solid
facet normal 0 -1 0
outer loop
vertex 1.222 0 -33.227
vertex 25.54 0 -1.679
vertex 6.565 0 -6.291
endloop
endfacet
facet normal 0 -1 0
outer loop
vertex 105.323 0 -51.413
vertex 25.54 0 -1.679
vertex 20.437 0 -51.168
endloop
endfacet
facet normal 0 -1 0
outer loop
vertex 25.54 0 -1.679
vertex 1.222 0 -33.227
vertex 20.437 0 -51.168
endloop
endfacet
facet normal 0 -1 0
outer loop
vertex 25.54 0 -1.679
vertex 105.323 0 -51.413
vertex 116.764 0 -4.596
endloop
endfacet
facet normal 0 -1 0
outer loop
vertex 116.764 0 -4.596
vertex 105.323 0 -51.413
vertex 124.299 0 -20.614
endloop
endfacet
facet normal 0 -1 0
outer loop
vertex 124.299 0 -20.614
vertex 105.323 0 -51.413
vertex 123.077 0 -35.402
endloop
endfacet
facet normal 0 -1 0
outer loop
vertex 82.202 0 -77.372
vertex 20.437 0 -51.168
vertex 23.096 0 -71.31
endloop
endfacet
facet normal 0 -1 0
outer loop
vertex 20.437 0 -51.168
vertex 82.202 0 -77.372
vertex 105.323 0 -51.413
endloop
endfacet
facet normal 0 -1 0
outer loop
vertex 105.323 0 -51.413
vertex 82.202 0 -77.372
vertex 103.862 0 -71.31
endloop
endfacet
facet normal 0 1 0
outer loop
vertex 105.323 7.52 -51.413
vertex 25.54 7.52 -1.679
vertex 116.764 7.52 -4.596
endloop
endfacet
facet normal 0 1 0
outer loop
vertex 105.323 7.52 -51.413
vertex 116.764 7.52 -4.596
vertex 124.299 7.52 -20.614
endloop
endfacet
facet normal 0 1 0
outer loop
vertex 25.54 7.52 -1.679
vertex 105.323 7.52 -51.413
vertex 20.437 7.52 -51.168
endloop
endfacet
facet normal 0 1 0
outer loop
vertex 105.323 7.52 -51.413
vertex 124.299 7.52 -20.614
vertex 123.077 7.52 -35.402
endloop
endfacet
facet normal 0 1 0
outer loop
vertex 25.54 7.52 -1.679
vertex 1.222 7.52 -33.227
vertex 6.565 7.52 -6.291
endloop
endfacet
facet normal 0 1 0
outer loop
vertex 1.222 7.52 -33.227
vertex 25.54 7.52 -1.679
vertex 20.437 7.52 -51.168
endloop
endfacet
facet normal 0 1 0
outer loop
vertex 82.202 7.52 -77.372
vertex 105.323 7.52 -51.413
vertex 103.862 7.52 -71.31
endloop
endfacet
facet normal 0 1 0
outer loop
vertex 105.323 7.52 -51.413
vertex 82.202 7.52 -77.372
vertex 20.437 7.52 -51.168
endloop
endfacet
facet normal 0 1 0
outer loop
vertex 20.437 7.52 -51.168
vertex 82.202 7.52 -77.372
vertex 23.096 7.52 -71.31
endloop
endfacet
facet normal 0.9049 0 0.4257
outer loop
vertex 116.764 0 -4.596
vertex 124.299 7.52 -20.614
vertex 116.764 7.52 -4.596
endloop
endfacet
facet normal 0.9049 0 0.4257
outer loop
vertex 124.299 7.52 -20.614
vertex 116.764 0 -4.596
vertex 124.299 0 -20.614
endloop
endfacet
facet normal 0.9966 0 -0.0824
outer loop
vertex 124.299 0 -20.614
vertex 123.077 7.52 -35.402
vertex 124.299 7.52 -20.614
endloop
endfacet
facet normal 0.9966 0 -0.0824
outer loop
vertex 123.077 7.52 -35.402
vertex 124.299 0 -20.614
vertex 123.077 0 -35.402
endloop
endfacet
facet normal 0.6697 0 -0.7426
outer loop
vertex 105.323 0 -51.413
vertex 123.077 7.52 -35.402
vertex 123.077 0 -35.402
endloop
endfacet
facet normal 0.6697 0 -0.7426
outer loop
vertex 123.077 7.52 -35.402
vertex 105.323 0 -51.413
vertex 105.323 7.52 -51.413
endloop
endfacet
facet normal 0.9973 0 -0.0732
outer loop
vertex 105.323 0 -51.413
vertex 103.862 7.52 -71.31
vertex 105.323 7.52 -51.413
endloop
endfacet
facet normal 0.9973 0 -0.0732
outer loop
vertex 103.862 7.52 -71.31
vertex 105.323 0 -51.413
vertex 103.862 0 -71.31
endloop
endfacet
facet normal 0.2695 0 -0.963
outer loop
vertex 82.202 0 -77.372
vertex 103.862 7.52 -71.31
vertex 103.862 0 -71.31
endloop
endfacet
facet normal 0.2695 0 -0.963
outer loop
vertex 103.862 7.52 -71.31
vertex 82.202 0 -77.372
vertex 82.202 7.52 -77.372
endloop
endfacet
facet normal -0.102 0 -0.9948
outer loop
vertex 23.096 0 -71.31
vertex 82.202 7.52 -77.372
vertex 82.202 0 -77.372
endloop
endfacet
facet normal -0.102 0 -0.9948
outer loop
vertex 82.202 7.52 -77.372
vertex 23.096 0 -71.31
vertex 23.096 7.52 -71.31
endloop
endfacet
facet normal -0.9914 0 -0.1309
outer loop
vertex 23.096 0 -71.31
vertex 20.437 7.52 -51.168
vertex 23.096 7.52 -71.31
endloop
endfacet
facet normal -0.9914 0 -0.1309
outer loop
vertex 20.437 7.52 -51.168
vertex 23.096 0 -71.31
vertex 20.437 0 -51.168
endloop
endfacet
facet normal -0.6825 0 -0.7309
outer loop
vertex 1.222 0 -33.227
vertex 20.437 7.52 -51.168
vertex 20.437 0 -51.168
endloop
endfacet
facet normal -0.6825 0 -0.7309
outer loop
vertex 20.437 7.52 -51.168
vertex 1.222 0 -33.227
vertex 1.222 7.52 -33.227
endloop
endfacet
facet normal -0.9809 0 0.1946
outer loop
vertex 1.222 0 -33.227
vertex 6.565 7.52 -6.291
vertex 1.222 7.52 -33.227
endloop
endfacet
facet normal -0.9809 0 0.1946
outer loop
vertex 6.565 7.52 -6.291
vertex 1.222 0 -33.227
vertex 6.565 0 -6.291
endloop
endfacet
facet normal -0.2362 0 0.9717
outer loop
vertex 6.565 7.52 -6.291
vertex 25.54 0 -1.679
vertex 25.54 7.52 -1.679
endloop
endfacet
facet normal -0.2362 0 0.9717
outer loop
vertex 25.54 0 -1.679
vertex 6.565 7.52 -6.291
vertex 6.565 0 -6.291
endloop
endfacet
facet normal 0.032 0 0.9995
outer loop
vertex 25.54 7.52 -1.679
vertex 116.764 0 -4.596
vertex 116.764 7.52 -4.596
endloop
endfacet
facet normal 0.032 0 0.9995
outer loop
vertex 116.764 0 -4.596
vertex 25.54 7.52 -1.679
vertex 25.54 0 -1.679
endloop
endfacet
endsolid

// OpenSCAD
/* doodle-meta {"version":1,"parameters":{"width":{"label":"Overall width","description":"Changes the body width","unit":"mm","feature":"body_width"},"height":{"label":"Overall height","description":"Changes the body height","unit":"mm","feature":"body_height"},"depth":{"label":"Plate thickness","description":"Changes the plate thickness","unit":"mm","feature":"body_depth"},"slot_count":{"label":"Slot count","description":"Number of vertical slots","unit":"count","feature":"slots"},"slot_width":{"label":"Slot width","description":"Width of each vertical slot","unit":"mm","feature":"slots"},"slot_height":{"label":"Slot height","description":"Height of each vertical slot","unit":"mm","feature":"slots"},"slot_pitch":{"label":"Slot pitch","description":"Center-to-center distance between slots","unit":"mm","feature":"slots"},"headlight_diameter":{"label":"Headlight diameter","description":"Diameter of circular headlight cutouts","unit":"mm","feature":"headlights"},"headlight_x_offset":{"label":"Headlight X offset","description":"Horizontal distance of headlights from center","unit":"mm","feature":"headlights"},"headlight_z_offset":{"label":"Headlight Z offset","description":"Vertical distance of headlights from center","unit":"mm","feature":"headlights"}},"features":{"body_width":{"kind":"dimension","axis":"x","label":"Overall width"},"body_height":{"kind":"dimension","axis":"z","label":"Overall height"},"body_depth":{"kind":"dimension","axis":"y","label":"Plate thickness"},"slots":{"kind":"region","label":"Vertical Slots","min":[{"parameter":"width","scale":0.25,"offset":0},{"parameter":"depth","scale":-0.1,"offset":0},{"parameter":"height","scale":0.13,"offset":0}],"max":[{"parameter":"width","scale":0.75,"offset":0},{"parameter":"depth","scale":1.1,"offset":0},{"parameter":"height","scale":0.74,"offset":0}]},"headlights":{"kind":"region","label":"Headlights","min":[{"parameter":"width","scale":0.09,"offset":0},{"parameter":"depth","scale":-0.1,"offset":0},{"parameter":"height","scale":0.49,"offset":0}],"max":[{"parameter":"width","scale":0.91,"offset":0},{"parameter":"depth","scale":1.1,"offset":0},{"parameter":"height","scale":0.75,"offset":0}]}}} */

// Top-level parameters (allowlist)
width = 126.0;
height = 78.83;
depth = 7.52;
slot_count = 7;
slot_width = 5.1;
slot_height = 48.0;
slot_pitch = 10.0;
headlight_diameter = 20.0;
headlight_x_offset = 41.0;
headlight_z_offset = 10.0;

// Derived constants (not editable)
eps = 0.01;

// Outer profile polygon in XZ plane (normalized from measured view_2)
// Mapped: X = u * width, Z = (1 - v) * height
outer_profile_pts = [
    [0.0097 * width, (1 - 0.5785) * height],
    [0.0521 * width, (1 - 0.9202) * height],
    [0.2027 * width, (1 - 0.9787) * height],
    [0.9267 * width, (1 - 0.9417) * height],
    [0.9865 * width, (1 - 0.7385) * height],
    [0.9768 * width, (1 - 0.5509) * height],
    [0.8359 * width, (1 - 0.3478) * height],
    [0.8243 * width, (1 - 0.0954) * height],
    [0.6524 * width, (1 - 0.0185) * height],
    [0.1833 * width, (1 - 0.0954) * height],
    [0.1622 * width, (1 - 0.3509) * height]
];

module grille_plate() {
    // Positive body: extrude outer profile along Y
    // The polygon is defined in XZ. linear_extrude extrudes along Z by default.
    // We need to extrude along Y.
    // Strategy: Define polygon in XY (where X is width, Y is height), extrude along Z (depth), then rotate to align Z->Y.
    // Or simpler: Define polygon in XZ, rotate the whole object so that the extrusion direction (Z) becomes Y.
    
    // Let's define the polygon in the XY plane (X=width, Y=height) and extrude along Z (depth).
    // Then rotate the result so that the Z-axis (depth) aligns with the Y-axis.
    // Rotation: Rotate -90 degrees around X axis. 
    // Original: X=width, Y=height, Z=depth.
    // After rotate([-90,0,0]): X=width, Y=depth, Z=height.
    // This matches the requirement: Front view is XZ (width x height), Top view is XY (width x depth).
    
    linear_extrude(height = depth) {
        polygon(outer_profile_pts);
    }
}

module slot_cutter(x_center, z_center) {
    // Vertical slot cutter: axis along Y (through the plate)
    // In the rotated frame (after the main body rotation), the plate lies in XZ plane with thickness along Y.
    // Wait, the main body is rotated. The cutters must be in the same coordinate system as the final object.
    // Final object: X=width, Y=depth, Z=height.
    // Slot is a rectangular prism.
    // Dimensions: Width (X) = slot_width, Height (Z) = slot_height, Depth (Y) = depth + 2*eps.
    // Position: Centered at x_center, z_center.
    
    translate([x_center, -eps, z_center]) {
        cube([slot_width, depth + 2*eps, slot_height], center = true);
    }
}

module headlight_cutter(x_center, z_center) {
    // Circular cutter: axis along Y
    // Cylinder axis is Z by default. Rotate 90 deg about X to align with Y.
    translate([x_center, -eps, z_center]) {
        rotate([90, 0, 0]) {
            cylinder(h = depth + 2*eps, d = headlight_diameter, center = true);
        }
    }
}

module grille_assembly() {
    difference() {
        // Positive body
        // Define polygon in XY (X=width, Y=height), extrude along Z (depth), then rotate to align Z->Y.
        // Polygon points are (x, z) from original definition. We treat them as (x, y) for the extrusion.
        // So we use the same points list, but interpret the second coordinate as Y (height) for the polygon definition.
        // Then rotate the extruded solid.
        
        rotate([-90, 0, 0]) {
            linear_extrude(height = depth) {
                polygon(outer_profile_pts);
            }
        }
        
        // Subtract 7 vertical slots
        // Slots are centered vertically in the main body area.
        // The "center" of the slot group in Z is roughly height/2.
        // The slots are arranged along X.
        for (i = [0 : slot_count - 1]) {
            // Center the group of slots horizontally
            // Total width of slots group = (slot_count - 1) * slot_pitch
            // Start X = width/2 - (slot_count - 1) * slot_pitch / 2
            x_pos = width/2 - (slot_count - 1) * slot_pitch / 2 + i * slot_pitch;
            // Z position: centered in the plate height
            z_pos = height / 2;
            slot_cutter(x_pos, z_pos);
        }
        
        // Subtract 2 circular headlights
        // Left headlight
        headlight_cutter(width/2 - headlight_x_offset, height/2 - headlight_z_offset);
        // Right headlight
        headlight_cutter(width/2 + headlight_x_offset, height/2 - headlight_z_offset);
    }
}

// Instantiate the design
grille_assembly();
